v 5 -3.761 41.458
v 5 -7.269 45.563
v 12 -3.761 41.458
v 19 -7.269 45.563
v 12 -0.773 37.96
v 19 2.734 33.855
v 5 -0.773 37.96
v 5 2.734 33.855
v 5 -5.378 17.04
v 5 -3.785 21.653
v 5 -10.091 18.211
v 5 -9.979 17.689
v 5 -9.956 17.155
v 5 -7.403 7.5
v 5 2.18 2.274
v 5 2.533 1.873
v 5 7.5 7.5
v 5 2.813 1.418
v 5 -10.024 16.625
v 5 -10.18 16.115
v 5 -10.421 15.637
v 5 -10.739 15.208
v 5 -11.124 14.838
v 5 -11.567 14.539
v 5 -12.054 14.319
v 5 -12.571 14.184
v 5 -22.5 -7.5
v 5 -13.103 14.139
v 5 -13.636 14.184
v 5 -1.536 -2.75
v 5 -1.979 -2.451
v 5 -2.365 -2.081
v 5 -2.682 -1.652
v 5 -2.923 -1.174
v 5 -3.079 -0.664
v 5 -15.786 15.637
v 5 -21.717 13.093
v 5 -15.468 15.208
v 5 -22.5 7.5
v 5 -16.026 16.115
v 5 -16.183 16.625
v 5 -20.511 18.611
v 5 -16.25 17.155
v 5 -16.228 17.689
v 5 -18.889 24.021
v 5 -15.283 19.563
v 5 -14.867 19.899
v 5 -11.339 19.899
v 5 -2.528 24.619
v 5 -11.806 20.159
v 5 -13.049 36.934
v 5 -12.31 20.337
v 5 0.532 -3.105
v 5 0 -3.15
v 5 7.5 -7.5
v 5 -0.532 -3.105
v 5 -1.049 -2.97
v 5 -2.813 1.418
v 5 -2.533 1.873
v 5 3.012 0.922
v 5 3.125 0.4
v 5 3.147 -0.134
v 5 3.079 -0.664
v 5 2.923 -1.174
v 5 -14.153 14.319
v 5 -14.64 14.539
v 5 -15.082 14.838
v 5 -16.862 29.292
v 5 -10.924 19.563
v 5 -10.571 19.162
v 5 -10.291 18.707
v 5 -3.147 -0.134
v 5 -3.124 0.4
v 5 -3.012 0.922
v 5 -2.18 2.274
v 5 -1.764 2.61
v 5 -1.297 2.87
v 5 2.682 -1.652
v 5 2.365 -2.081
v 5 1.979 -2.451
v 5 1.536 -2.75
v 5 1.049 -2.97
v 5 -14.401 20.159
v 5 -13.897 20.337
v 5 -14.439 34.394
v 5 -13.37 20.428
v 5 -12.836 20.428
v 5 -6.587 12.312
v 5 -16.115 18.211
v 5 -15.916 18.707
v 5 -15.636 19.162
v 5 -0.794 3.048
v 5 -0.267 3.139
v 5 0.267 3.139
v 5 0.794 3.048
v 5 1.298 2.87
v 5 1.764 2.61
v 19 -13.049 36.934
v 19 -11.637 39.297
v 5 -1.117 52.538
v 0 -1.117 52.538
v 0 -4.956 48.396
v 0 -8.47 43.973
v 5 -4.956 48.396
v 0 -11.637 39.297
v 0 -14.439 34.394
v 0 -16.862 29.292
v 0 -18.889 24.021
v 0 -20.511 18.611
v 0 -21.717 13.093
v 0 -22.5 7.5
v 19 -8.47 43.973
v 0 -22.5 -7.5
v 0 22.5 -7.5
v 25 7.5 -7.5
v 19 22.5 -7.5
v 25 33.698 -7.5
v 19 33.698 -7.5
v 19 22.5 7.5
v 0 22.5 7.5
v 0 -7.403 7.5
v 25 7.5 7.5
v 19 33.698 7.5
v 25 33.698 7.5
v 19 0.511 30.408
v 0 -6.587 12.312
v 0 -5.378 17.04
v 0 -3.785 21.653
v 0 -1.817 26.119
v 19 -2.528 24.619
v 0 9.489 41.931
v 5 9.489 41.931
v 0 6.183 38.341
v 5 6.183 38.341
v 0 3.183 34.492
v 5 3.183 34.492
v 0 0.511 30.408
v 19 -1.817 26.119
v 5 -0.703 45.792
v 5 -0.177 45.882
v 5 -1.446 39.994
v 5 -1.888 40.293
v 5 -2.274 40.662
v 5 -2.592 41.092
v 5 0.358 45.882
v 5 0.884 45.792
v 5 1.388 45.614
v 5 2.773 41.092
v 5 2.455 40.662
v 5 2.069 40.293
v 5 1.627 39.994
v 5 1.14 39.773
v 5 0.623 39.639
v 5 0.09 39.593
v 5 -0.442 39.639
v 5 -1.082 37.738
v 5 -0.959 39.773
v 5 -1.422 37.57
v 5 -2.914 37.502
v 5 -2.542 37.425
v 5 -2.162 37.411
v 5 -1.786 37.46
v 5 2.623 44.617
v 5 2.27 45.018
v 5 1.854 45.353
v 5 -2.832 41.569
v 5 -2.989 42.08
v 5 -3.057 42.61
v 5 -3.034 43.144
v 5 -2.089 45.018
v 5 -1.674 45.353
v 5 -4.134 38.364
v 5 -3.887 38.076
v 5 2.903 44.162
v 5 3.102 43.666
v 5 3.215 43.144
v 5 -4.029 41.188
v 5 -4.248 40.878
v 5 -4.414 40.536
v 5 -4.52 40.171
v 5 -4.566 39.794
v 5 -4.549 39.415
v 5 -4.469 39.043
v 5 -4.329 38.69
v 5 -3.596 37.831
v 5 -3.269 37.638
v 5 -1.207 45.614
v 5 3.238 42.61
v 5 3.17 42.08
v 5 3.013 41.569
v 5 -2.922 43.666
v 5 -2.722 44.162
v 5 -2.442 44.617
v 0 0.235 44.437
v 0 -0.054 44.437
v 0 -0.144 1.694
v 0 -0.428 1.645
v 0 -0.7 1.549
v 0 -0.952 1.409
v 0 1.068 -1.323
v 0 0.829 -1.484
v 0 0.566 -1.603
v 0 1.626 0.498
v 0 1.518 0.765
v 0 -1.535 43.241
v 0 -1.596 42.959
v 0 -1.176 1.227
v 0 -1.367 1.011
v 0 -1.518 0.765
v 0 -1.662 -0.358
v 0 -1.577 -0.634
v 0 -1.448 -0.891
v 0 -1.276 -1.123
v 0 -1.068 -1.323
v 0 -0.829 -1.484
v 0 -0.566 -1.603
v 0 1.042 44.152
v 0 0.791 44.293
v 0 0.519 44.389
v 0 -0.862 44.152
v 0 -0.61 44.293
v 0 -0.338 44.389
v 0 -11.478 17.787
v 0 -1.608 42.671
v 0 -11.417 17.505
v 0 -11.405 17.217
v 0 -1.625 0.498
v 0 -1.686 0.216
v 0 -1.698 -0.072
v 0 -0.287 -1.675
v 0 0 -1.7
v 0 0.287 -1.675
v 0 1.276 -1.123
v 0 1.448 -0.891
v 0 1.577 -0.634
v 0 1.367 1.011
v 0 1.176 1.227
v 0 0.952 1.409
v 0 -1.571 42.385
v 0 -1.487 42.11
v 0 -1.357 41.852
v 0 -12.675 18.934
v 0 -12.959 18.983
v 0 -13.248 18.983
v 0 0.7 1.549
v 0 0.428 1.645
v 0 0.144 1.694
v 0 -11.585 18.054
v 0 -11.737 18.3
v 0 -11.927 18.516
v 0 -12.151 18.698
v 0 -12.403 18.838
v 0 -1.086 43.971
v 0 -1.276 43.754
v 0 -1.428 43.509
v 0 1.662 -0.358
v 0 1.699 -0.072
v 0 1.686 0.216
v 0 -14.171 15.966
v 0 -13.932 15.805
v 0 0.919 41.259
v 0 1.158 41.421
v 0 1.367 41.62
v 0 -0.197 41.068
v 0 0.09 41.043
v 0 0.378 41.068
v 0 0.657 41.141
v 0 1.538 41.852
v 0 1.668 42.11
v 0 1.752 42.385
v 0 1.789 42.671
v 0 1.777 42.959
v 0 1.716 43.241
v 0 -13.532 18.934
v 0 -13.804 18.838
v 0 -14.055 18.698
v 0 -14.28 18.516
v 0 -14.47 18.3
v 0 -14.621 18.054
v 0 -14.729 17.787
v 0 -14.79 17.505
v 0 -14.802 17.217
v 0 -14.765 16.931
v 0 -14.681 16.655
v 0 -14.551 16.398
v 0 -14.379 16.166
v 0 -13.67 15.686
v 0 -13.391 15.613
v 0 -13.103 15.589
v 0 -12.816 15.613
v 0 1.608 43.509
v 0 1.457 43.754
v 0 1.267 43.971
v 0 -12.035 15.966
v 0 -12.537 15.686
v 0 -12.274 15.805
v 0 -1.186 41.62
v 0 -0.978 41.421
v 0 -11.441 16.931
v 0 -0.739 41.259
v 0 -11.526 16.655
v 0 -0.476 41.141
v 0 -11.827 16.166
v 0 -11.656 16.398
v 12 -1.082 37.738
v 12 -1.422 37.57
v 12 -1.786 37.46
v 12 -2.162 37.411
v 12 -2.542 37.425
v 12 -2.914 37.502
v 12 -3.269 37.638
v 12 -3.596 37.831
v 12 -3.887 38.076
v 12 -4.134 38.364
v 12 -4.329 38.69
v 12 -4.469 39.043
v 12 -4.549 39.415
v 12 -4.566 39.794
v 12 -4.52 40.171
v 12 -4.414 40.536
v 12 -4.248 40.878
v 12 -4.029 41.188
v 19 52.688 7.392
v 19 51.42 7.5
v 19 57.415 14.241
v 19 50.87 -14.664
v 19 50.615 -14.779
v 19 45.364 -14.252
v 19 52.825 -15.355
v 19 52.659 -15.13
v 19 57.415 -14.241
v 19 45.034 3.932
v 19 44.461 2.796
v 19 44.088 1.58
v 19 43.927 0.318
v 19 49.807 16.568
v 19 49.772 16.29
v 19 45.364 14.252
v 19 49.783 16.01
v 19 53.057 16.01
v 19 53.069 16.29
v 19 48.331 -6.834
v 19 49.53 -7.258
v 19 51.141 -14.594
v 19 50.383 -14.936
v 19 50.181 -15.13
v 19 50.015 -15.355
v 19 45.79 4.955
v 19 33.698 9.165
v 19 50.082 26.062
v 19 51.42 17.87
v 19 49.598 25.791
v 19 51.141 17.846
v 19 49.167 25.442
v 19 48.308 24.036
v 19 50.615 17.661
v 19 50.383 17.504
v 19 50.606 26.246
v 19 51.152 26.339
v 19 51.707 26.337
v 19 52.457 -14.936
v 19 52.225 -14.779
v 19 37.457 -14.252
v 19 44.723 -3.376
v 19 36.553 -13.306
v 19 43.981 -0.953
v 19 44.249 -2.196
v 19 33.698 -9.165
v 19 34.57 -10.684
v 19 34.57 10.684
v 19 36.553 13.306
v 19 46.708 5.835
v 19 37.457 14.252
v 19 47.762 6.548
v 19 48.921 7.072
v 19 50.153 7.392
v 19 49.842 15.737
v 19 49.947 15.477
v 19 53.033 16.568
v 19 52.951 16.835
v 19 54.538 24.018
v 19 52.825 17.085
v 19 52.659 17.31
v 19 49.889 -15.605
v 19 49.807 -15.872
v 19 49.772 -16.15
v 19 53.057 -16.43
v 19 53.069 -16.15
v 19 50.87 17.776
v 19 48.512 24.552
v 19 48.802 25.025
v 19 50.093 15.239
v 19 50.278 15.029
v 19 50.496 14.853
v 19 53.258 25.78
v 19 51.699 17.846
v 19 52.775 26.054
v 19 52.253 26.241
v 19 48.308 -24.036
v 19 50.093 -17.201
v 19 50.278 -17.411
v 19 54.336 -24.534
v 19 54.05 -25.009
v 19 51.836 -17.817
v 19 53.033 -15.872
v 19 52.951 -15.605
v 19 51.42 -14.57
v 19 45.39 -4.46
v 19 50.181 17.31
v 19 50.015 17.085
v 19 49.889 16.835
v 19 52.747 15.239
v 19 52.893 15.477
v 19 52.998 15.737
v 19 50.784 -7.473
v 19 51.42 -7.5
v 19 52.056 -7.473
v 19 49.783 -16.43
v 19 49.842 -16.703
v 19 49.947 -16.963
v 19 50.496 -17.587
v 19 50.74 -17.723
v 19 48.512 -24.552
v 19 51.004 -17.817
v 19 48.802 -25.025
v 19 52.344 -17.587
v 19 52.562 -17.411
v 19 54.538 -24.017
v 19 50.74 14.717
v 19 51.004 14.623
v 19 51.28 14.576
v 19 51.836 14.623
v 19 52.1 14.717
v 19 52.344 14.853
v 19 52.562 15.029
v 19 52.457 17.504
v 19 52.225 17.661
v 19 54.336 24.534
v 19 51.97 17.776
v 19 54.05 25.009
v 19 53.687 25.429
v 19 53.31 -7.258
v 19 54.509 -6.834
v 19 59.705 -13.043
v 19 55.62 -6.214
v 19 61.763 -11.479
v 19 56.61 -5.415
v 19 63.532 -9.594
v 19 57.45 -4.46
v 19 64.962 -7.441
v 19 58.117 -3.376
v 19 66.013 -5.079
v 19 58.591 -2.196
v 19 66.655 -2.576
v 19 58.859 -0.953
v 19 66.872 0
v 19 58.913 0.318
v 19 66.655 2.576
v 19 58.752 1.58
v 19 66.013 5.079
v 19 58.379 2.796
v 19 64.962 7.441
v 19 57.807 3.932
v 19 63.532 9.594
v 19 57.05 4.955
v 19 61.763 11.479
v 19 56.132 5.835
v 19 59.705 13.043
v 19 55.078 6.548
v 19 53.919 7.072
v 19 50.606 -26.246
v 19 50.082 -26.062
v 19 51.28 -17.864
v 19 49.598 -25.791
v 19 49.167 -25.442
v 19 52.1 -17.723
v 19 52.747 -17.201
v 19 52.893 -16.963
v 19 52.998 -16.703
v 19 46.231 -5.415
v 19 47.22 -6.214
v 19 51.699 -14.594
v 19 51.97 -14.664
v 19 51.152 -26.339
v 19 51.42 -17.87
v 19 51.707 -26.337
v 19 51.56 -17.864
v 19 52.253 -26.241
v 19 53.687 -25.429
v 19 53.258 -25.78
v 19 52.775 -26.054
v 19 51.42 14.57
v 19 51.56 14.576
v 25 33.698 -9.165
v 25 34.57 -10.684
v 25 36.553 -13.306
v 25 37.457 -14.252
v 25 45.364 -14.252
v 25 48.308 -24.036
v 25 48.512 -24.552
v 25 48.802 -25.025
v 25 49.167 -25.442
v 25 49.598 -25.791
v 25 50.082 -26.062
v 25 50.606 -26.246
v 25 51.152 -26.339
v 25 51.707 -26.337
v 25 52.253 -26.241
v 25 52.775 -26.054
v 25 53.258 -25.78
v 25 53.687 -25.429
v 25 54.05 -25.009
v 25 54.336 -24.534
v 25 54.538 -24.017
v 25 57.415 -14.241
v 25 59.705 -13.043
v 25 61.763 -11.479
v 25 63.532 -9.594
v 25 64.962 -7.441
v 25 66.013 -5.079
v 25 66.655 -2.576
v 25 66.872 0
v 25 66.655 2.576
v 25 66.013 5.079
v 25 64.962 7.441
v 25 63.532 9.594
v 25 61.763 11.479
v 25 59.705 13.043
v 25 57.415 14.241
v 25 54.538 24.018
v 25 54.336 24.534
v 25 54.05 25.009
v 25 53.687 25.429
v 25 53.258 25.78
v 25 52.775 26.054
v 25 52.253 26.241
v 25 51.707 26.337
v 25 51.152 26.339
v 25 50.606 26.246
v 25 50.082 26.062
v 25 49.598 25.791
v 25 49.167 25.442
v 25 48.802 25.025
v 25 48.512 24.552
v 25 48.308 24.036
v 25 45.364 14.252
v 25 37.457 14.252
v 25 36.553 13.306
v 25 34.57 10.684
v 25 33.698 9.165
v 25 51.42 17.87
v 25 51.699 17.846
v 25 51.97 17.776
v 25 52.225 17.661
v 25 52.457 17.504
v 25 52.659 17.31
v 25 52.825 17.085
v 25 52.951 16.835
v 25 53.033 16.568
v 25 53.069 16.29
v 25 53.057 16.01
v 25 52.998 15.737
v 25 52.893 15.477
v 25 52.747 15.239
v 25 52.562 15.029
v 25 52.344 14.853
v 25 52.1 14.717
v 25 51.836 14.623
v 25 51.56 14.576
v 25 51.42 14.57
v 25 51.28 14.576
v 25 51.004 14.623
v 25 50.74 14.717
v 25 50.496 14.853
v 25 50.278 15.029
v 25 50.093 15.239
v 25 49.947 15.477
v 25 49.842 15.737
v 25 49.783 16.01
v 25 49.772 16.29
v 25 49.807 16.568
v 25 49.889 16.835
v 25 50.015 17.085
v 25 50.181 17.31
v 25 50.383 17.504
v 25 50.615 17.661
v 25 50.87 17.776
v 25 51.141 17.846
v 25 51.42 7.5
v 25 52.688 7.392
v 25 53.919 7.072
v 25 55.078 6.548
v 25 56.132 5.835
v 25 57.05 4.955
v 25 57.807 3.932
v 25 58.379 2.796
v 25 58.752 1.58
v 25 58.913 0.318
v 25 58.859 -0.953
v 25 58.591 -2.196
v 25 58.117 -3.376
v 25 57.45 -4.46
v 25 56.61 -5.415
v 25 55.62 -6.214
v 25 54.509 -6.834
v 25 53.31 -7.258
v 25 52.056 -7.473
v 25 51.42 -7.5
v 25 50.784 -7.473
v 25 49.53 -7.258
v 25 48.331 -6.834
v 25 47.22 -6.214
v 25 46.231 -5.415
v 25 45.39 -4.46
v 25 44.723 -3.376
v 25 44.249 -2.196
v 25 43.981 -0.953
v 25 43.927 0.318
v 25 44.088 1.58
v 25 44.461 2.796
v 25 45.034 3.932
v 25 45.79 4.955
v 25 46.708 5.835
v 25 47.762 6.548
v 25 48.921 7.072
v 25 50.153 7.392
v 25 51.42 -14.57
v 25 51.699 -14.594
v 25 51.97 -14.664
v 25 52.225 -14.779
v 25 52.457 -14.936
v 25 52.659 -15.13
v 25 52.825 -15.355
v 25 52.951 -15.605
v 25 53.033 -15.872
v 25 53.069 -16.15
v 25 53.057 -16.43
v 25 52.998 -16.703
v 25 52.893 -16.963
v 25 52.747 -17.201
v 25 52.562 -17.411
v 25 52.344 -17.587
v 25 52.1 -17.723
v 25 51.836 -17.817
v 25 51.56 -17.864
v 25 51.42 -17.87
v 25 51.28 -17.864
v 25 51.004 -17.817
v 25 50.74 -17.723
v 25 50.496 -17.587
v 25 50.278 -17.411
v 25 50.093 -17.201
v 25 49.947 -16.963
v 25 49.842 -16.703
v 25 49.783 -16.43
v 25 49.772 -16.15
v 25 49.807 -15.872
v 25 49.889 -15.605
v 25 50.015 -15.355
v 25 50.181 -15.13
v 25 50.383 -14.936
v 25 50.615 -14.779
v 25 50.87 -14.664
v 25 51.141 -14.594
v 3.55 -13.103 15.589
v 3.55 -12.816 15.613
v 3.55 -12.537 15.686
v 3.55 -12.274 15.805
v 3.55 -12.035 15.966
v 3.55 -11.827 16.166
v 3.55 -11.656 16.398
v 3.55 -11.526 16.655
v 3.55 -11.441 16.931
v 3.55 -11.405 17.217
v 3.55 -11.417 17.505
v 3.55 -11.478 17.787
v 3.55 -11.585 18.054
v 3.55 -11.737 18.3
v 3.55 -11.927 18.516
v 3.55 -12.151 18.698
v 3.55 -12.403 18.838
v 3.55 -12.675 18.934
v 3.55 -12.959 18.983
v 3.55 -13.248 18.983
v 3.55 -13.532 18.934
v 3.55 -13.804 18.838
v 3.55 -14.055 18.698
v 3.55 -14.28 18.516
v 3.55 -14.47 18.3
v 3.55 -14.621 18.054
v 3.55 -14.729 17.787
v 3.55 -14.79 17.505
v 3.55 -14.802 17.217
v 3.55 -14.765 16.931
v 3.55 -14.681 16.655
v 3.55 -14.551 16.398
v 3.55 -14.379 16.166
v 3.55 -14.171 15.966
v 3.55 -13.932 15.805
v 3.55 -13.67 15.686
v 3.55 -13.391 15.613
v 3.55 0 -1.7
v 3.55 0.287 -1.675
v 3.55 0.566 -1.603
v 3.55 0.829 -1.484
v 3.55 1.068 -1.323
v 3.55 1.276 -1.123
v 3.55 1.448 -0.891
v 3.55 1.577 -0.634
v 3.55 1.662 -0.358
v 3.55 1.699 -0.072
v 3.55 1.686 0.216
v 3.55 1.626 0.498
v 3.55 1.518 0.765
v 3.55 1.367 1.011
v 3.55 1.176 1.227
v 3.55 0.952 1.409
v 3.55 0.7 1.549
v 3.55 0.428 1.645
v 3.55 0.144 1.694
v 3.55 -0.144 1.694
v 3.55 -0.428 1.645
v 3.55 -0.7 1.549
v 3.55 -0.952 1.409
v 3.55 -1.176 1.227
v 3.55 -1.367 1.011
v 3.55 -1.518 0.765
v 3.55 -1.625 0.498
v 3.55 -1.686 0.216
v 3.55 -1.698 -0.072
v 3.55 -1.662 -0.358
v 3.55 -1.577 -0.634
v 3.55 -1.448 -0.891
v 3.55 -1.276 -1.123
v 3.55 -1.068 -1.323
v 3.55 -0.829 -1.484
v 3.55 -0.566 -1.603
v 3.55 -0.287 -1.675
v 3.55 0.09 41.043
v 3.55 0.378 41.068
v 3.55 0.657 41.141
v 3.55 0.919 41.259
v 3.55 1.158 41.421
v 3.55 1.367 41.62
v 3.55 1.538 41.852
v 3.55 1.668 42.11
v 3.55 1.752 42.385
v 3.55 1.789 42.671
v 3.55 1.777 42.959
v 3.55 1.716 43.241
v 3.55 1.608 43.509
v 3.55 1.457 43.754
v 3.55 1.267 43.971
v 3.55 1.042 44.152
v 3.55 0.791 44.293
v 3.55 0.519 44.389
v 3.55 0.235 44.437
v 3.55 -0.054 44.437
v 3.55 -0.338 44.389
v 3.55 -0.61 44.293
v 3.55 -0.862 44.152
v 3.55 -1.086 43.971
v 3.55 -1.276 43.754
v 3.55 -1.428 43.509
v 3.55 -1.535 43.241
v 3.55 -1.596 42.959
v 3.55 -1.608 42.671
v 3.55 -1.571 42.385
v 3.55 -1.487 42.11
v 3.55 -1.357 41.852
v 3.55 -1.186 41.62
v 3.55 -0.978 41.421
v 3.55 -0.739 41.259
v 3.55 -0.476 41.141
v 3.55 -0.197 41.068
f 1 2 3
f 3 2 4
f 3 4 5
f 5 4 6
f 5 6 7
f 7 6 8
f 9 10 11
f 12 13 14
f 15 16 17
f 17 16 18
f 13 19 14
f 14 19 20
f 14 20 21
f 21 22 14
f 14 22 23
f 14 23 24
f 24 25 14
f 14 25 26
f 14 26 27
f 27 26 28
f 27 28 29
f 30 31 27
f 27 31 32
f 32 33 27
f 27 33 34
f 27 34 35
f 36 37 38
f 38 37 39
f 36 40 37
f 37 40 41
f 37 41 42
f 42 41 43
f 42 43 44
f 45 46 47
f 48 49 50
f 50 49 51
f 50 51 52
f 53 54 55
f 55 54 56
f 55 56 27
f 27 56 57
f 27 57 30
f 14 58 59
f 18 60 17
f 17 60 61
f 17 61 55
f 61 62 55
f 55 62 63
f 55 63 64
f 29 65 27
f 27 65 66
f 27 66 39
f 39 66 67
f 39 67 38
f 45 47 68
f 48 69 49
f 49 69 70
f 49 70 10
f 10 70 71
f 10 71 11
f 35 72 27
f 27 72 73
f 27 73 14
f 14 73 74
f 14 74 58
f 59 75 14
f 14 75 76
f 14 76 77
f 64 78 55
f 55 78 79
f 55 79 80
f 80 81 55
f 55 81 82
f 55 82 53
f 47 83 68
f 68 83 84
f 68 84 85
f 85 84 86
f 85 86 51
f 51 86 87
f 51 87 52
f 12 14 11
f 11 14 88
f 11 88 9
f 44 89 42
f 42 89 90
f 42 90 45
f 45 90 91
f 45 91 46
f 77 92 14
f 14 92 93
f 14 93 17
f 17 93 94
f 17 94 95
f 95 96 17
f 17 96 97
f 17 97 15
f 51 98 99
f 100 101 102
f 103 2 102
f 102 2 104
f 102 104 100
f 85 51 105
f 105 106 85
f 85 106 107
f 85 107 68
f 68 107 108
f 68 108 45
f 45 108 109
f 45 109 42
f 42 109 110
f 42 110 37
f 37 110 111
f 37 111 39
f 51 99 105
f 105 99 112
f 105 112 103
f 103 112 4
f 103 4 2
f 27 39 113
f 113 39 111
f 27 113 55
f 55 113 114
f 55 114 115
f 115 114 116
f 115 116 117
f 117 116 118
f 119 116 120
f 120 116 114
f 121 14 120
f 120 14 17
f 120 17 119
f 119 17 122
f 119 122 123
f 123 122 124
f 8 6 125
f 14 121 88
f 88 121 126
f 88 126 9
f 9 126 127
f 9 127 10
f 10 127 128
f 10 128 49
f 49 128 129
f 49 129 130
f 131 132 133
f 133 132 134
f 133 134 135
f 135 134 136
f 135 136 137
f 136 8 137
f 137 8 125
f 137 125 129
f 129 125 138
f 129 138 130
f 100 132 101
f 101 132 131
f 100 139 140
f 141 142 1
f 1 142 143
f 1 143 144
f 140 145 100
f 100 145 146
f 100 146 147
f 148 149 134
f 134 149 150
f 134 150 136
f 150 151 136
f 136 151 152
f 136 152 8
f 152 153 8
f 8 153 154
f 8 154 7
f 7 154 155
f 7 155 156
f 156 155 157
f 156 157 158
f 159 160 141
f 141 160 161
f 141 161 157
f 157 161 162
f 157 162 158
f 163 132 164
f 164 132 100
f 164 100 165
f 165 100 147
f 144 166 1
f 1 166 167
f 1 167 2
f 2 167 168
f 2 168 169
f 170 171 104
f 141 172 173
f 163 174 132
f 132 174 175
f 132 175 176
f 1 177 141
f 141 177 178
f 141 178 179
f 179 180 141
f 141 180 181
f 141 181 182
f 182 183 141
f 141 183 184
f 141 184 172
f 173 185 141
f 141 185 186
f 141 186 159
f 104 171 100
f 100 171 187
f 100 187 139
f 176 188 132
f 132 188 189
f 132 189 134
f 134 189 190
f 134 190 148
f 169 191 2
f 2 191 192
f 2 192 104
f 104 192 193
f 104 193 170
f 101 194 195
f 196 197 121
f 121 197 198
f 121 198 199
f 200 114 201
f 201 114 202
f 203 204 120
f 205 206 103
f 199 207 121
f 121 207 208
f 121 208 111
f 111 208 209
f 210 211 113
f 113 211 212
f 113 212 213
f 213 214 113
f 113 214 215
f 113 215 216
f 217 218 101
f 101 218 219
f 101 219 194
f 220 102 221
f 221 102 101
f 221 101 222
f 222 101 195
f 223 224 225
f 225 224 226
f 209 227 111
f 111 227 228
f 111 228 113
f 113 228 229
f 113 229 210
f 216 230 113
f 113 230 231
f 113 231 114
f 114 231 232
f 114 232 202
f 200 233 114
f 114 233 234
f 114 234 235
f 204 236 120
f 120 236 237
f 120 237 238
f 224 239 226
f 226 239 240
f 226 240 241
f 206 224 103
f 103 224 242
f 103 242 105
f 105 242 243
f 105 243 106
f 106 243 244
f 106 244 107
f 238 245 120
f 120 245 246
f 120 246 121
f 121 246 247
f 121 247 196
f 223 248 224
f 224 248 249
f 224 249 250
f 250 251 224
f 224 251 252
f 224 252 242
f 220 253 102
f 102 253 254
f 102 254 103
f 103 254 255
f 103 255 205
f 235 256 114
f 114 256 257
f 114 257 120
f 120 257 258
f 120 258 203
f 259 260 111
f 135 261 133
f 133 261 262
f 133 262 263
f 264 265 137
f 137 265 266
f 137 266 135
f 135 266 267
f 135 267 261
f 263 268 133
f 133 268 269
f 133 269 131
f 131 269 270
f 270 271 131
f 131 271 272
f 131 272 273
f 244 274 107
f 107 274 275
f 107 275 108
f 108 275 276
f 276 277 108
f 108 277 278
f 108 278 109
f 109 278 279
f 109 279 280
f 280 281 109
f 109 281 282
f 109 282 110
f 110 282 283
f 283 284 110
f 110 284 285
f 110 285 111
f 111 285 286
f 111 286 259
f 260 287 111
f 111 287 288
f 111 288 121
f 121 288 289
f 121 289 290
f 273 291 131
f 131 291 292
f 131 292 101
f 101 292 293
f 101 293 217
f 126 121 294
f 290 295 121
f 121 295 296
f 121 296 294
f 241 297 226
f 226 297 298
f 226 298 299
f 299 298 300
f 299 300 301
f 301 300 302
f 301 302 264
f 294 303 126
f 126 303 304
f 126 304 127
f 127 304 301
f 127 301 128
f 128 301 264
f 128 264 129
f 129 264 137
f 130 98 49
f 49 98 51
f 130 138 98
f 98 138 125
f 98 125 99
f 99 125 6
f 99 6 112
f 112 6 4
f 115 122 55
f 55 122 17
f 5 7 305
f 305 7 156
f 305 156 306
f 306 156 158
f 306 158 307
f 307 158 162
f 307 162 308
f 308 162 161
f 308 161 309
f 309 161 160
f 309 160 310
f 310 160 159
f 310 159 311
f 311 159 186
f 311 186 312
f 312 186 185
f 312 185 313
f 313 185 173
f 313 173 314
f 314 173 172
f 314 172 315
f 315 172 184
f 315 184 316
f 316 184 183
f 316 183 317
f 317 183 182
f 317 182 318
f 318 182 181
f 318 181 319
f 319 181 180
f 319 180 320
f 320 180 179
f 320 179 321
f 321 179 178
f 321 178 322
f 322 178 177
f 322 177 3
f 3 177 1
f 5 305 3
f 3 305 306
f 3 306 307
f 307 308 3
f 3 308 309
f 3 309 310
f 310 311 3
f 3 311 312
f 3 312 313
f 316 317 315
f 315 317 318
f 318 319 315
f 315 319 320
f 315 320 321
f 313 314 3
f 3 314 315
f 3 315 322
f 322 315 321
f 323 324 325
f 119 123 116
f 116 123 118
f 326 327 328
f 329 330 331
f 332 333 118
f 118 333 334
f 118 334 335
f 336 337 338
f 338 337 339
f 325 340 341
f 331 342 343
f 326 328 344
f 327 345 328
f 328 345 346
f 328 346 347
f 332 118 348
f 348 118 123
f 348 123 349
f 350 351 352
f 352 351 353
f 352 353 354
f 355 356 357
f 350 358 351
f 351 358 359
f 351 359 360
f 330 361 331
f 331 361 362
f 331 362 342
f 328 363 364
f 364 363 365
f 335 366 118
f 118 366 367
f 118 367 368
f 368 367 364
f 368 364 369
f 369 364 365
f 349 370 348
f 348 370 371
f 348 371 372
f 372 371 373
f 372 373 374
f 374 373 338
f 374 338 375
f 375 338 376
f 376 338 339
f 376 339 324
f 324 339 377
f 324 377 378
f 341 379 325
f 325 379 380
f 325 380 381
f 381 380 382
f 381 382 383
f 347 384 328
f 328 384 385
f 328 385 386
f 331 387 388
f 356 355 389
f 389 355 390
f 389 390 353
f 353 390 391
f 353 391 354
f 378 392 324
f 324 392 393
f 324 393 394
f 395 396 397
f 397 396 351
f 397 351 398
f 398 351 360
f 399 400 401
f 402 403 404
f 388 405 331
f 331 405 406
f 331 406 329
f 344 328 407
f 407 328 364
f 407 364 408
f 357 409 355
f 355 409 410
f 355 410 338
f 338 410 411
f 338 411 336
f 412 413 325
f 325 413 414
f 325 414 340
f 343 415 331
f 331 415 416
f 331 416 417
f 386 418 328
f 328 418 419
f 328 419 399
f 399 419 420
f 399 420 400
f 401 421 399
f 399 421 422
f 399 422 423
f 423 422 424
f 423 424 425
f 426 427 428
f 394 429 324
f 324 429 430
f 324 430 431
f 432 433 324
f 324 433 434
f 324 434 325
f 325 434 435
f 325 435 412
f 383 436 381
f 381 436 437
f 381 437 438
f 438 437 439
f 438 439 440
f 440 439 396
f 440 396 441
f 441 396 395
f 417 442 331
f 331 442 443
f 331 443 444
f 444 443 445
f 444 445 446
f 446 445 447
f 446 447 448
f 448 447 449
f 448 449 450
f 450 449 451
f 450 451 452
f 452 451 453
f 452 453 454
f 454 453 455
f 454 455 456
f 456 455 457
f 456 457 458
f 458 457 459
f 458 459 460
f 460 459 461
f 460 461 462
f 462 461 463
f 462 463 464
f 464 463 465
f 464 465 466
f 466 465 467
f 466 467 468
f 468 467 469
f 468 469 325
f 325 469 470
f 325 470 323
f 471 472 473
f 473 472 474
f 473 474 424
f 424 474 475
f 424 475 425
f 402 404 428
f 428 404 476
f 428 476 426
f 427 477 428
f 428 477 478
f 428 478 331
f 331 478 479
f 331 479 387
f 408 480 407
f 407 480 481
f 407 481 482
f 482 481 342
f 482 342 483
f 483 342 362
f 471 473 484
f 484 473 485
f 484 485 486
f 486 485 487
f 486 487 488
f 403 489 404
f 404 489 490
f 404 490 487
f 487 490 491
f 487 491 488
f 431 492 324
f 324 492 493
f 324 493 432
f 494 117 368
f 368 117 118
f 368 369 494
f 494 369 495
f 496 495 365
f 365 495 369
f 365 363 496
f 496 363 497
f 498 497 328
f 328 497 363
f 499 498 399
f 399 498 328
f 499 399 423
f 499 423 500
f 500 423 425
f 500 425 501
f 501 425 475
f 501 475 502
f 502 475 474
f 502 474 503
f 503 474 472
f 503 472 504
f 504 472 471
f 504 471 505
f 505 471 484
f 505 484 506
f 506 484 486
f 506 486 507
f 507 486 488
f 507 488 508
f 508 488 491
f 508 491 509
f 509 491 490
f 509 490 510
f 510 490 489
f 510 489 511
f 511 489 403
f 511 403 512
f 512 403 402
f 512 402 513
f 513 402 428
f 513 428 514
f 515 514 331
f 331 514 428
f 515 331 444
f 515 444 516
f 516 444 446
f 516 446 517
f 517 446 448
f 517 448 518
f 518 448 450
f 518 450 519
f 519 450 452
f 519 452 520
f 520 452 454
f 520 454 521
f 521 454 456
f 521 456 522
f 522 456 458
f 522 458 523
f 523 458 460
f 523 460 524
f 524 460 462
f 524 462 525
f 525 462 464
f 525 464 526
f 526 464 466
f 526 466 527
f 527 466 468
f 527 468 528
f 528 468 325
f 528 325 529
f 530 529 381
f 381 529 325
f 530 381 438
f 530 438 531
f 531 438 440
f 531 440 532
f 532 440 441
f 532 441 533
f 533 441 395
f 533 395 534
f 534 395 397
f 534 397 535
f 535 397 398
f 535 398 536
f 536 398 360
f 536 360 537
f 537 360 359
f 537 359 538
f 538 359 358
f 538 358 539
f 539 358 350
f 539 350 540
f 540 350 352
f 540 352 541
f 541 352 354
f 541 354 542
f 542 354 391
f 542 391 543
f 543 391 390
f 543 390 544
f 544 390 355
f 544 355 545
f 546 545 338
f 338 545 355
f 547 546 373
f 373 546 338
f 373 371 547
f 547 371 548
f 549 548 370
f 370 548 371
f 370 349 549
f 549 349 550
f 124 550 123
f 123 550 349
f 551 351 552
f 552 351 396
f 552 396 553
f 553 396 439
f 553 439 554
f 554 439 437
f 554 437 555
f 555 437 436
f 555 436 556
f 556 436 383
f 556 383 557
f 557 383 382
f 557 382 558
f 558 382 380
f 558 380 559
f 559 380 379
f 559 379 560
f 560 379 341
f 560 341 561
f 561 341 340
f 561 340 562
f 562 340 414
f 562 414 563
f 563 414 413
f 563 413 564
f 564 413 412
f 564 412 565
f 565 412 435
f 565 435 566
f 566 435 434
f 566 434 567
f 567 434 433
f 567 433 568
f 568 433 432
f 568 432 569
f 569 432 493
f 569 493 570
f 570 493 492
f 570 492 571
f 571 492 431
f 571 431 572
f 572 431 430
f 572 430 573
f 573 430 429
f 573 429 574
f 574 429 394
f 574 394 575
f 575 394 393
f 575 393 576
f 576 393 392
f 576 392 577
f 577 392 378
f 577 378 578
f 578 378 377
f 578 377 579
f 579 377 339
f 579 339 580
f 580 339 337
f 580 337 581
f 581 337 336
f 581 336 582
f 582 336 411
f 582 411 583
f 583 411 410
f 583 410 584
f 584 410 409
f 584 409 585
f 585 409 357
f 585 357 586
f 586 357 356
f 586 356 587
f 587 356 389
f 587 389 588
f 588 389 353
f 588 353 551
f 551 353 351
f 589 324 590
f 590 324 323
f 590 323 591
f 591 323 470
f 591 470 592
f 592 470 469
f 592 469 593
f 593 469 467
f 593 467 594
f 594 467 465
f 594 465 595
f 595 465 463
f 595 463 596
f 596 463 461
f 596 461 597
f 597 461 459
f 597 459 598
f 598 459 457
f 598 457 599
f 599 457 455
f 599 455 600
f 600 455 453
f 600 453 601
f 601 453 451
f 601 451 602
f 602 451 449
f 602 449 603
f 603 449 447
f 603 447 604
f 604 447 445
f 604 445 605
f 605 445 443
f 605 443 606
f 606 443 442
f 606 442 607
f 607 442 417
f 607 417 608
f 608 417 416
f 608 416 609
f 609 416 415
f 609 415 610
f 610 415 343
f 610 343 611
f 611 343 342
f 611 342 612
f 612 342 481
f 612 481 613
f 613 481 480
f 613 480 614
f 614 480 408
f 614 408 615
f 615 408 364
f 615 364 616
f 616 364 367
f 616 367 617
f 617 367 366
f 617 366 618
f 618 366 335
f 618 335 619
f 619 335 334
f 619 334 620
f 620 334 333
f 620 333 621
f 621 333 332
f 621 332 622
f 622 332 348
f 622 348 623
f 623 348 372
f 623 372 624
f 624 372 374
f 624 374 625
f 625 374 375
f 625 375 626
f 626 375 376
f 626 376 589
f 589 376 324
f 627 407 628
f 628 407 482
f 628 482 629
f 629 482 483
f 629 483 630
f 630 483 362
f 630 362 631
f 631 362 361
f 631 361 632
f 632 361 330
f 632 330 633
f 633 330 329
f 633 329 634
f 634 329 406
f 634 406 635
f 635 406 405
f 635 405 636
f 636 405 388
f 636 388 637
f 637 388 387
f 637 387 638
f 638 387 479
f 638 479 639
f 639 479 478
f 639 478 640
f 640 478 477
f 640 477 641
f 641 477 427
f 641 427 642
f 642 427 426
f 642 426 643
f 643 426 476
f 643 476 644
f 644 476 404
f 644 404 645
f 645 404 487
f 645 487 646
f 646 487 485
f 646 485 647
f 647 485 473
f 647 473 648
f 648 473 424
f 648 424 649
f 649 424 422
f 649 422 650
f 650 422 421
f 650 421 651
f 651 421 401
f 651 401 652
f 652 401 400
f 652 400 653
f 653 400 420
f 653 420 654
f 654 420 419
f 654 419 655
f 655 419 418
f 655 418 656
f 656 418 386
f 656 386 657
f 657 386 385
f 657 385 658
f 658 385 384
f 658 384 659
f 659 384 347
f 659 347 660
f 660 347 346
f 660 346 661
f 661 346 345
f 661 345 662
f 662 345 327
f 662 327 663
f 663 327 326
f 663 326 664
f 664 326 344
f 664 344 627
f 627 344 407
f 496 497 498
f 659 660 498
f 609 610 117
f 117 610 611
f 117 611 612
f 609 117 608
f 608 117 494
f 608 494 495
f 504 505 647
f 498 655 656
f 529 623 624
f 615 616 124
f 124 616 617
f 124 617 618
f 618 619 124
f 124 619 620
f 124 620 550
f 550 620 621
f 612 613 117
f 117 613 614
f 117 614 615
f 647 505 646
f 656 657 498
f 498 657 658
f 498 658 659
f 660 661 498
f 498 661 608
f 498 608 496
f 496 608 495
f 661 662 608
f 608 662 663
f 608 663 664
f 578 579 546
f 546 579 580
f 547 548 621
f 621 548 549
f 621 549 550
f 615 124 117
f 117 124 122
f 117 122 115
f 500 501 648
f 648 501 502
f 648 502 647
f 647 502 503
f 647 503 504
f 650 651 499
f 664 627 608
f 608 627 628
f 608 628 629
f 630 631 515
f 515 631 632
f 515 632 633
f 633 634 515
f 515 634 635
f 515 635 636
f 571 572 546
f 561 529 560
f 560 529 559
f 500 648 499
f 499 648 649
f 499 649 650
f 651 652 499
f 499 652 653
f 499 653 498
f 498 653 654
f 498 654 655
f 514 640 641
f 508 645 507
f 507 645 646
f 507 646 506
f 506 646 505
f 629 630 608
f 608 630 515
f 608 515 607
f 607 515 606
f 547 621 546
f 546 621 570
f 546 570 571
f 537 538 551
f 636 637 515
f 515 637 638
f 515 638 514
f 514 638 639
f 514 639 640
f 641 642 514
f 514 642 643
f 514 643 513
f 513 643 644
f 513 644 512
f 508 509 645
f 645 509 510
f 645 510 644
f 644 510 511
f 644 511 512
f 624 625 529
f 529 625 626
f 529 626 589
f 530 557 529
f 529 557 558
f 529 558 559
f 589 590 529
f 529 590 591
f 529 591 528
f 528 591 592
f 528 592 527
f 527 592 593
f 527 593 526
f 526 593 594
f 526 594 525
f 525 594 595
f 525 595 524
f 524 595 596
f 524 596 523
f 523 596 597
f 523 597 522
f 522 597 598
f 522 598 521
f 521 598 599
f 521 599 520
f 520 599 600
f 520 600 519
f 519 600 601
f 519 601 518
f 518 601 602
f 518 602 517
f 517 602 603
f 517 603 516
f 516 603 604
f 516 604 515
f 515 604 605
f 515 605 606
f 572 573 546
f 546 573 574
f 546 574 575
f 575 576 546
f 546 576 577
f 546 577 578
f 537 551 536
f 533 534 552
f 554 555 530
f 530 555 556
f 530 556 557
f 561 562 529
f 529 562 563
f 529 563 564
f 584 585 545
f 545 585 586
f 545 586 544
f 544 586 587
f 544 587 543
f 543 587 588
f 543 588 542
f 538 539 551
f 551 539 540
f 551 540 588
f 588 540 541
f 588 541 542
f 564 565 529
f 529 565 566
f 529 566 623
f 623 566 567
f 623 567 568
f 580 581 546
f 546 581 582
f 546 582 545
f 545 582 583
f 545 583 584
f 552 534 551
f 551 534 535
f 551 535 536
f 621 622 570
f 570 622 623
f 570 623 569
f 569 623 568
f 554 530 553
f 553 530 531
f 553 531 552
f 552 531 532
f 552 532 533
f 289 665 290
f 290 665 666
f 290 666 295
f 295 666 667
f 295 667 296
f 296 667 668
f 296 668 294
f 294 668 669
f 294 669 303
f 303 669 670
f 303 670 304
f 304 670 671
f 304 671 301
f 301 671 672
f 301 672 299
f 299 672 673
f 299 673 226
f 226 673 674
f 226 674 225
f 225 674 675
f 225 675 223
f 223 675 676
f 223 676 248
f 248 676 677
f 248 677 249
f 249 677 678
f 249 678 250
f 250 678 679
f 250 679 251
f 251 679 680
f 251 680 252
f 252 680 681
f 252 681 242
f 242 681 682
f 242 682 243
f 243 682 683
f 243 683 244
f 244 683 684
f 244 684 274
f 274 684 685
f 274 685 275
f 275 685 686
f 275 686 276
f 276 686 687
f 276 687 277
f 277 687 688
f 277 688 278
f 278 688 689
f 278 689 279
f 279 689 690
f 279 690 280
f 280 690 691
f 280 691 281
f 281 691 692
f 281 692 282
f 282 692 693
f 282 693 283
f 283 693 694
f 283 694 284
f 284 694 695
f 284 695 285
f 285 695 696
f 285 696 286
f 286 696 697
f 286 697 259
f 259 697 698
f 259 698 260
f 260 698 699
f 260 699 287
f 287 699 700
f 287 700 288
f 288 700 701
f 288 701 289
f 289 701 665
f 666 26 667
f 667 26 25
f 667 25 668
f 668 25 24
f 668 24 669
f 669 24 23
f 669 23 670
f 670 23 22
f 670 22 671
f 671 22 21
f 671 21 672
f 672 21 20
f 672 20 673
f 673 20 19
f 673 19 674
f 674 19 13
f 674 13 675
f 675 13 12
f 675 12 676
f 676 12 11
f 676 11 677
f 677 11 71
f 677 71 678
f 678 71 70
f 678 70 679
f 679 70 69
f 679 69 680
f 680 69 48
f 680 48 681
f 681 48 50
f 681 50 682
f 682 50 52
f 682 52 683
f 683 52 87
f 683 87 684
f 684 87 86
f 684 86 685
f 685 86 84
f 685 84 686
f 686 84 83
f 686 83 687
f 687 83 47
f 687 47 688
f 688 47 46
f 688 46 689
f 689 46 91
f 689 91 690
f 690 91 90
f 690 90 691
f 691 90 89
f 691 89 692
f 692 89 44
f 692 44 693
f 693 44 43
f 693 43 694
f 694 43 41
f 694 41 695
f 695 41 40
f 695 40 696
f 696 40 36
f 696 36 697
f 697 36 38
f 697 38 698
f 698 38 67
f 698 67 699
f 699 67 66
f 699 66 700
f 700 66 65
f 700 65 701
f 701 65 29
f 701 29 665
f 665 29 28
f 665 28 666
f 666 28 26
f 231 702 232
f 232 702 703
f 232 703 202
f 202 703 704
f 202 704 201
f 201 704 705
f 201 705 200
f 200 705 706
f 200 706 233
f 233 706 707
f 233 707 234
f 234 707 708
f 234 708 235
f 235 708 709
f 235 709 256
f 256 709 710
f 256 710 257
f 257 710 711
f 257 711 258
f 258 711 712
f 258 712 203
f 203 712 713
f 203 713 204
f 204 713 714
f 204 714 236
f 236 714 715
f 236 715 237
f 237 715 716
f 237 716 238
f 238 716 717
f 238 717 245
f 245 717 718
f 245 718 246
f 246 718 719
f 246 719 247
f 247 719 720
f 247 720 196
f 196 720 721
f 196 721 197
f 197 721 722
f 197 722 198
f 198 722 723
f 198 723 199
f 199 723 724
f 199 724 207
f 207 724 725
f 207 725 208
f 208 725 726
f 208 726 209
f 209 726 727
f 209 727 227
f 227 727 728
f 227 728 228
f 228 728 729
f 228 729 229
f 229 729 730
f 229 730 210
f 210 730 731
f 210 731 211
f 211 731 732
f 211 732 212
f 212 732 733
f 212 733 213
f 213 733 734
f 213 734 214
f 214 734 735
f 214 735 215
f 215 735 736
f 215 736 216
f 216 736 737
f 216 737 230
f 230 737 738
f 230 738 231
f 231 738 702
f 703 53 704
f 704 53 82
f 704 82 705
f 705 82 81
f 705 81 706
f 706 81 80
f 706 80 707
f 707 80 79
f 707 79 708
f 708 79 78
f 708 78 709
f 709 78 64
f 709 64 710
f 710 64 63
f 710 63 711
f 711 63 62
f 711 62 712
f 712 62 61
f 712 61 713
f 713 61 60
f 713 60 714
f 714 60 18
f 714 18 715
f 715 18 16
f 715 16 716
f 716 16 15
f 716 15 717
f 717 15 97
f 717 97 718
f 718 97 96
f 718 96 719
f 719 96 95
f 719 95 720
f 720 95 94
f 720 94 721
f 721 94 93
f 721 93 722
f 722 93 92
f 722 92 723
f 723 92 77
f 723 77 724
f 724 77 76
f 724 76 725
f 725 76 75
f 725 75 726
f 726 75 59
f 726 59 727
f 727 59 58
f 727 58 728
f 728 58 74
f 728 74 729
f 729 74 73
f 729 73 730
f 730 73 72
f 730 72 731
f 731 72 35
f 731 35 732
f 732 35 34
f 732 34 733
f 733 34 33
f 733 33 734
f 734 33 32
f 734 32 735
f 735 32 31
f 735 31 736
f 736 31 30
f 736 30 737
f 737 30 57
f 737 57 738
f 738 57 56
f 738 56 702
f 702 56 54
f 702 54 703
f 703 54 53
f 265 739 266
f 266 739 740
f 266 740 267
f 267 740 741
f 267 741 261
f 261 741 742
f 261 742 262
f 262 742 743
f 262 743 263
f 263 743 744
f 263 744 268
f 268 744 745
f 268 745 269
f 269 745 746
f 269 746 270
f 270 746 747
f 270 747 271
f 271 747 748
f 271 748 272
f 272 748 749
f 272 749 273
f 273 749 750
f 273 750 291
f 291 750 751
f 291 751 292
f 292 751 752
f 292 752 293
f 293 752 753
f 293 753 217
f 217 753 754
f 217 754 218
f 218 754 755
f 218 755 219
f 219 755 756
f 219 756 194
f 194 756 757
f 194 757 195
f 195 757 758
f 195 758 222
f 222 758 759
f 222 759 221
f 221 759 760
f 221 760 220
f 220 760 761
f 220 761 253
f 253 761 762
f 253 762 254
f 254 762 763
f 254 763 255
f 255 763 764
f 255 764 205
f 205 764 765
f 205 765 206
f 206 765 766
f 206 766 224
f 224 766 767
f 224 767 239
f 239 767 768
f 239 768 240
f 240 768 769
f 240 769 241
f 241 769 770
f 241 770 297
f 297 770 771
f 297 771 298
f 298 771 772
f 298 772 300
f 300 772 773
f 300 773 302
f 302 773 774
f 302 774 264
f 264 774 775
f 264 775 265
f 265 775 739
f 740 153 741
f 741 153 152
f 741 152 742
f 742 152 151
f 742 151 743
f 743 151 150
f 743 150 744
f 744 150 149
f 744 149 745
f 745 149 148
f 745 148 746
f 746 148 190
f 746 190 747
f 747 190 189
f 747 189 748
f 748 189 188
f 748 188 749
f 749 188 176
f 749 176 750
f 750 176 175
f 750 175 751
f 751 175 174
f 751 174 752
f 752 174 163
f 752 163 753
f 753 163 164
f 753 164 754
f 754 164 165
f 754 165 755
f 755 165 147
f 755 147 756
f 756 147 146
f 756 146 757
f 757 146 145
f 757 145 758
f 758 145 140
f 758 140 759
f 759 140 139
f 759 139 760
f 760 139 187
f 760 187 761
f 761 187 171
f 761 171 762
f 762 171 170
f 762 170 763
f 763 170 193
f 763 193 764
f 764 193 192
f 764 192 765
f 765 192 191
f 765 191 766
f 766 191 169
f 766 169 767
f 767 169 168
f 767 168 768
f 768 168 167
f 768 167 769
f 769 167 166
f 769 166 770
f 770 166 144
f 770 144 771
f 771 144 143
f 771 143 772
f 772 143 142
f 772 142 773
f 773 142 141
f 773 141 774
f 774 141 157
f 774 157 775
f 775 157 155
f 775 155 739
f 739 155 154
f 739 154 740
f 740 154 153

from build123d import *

# Parameters (mm, degrees)
SKETCH1_W                                       = 15
SKETCH1_H                                       = 45
BOSS_EXTRUDE1_DEPTH                             = 5
SKETCH2_W                                       = 15
SKETCH2_H                                       = 15
BOSS_EXTRUDE2_DEPTH                             = 14
SKETCH3_R                                       = 2.3
CUT_EXTRUDE1_DEPTH                              = 7
SKETCH4_R                                       = 7.5
SKETCH4_R_2                                     = 1.65
BOSS_EXTRUDE3_DEPTH                             = 6
CSK_FOR_M3_FLAT_HEAD_MACHINE_SCREW1_D           = 3.4
CSK_FOR_M3_FLAT_HEAD_MACHINE_SCREW1_DEPTH       = 6.35
CSK_FOR_M3_FLAT_HEAD_MACHINE_SCREW1_CSINK_D     = 6.3
CSK_FOR_M3_FLAT_HEAD_MACHINE_SCREW1_CSINK_ANGLE = 90
CSK_FOR_M3_FLAT_HEAD_MACHINE_SCREW1_TIP         = 1.021463052


with BuildPart() as part:
    # Sketch1 → Boss-Extrude1 (new body)
    with BuildSketch(Plane(origin=(0, 0, 0), x_dir=(0, 0, -1), z_dir=(1, 0, 0))):
        with BuildLine():
            Line((-33.857008974, 2.735870452), (-45.565370995, -7.267550065))
            ThreePointArc((-45.565370995, -7.267550065), (-27.604171468, -17.561381798), (-7.5, -22.5))
            Line((-7.5, -22.5), (-7.5, -7.403306871))
            ThreePointArc((-7.5, -7.403306871), (-21.290873092, -3.925583536), (-33.857008974, 2.735870452))
        make_face()
        Rectangle(SKETCH1_W, SKETCH1_H)
        with BuildLine():
            Line((-41.931432124, 9.489065709), (-52.538033842, -1.117536008))
            ThreePointArc((-52.538033842, -1.117536008), (-49.147992618, -4.301713372), (-45.565370995, -7.267550065))
            Line((-45.565370995, -7.267550065), (-33.857008974, 2.735870452))
            ThreePointArc((-33.857008974, 2.735870452), (-38.044360457, 5.932954073), (-41.931432124, 9.489065709))
        make_face()
    extrude(amount=BOSS_EXTRUDE1_DEPTH)

    # Sketch2 → Boss-Extrude2 (add)
    with BuildSketch(Plane(origin=(5, 0, 0), x_dir=(0, 0, -1), z_dir=(1, 0, 0))):
        with BuildLine():
            Line((-45.563203072, -7.269233174), (-33.854727787, 2.734284113))
            ThreePointArc((-33.854727787, 2.734284113), (-29.354954434, -0.104026911), (-24.61890521, -2.52762082))
            Line((-24.61890521, -2.52762082), (-36.933994133, -13.049418231))
            ThreePointArc((-36.933994133, -13.049418231), (-41.349722145, -10.310292527), (-45.563203072, -7.269233174))
        make_face()
        with Locations((0, 15)):
            Rectangle(SKETCH2_W, SKETCH2_H)
    extrude(amount=BOSS_EXTRUDE2_DEPTH)

    # Sketch3 → Cut-Extrude1 (cut)
    with BuildSketch(Plane(origin=(5, 0, 0), x_dir=(0, 0, -1), z_dir=(1, 0, 0))):
        with Locations((-39.70896543, -2.267474531)):
            Circle(SKETCH3_R)
    extrude(amount=CUT_EXTRUDE1_DEPTH, mode=Mode.SUBTRACT)

    # Sketch4 → Boss-Extrude3 (add)
    with BuildSketch(Plane(origin=(19, 0, 0), x_dir=(0, 0, -1), z_dir=(1, 0, 0))):
        with BuildLine():
            Line((-7.5, 33.697965455), (-7.5, 7.5))
            Line((-7.5, 7.5), (7.5, 7.5))
            Line((7.5, 7.5), (7.5, 33.697965455))
            Line((7.5, 33.697965455), (9.165031814, 33.697965455))
            ThreePointArc((9.165031814, 33.697965455), (9.933965272, 34.117264651), (10.683756157, 34.569905907))
            Line((10.683756157, 34.569905907), (13.30556247, 36.552911383))
            ThreePointArc((13.30556247, 36.552911383), (13.786023096, 36.997313573), (14.25164947, 37.457235089))
            Line((14.25164947, 37.457235089), (14.25164947, 45.3641606))
            Line((14.25164947, 45.3641606), (24.03628358, 48.30778647))
            ThreePointArc((24.03628358, 48.30778647), (26.349985315, 51.429769983), (24.017555191, 54.53778647))
            Line((24.017555191, 54.53778647), (14.241296463, 57.414910041))
            ThreePointArc((14.241296463, 57.414910041), (0, 66.87164947), (-14.241296463, 57.414910041))
            Line((-14.241296463, 57.414910041), (-24.017555191, 54.53778647))
            ThreePointArc((-24.017555191, 54.53778647), (-26.349985315, 51.429769983), (-24.03628358, 48.30778647))
            Line((-24.03628358, 48.30778647), (-14.25164947, 45.3641606))
            Line((-14.25164947, 45.3641606), (-14.25164947, 37.457235089))
            ThreePointArc((-14.25164947, 37.457235089), (-13.786023096, 36.997313573), (-13.30556247, 36.552911383))
            Line((-13.30556247, 36.552911383), (-10.683756157, 34.569905907))
            ThreePointArc((-10.683756157, 34.569905907), (-9.933965272, 34.117264651), (-9.165031814, 33.697965455))
            Line((-9.165031814, 33.697965455), (-7.5, 33.697965455))
        make_face()
        with Locations((0, 51.42)):
            Circle(SKETCH4_R, mode=Mode.SUBTRACT)
        with Locations((16.22, 51.42)):
            Circle(SKETCH4_R_2, mode=Mode.SUBTRACT)
        with Locations((-16.22, 51.42)):
            Circle(SKETCH4_R_2, mode=Mode.SUBTRACT)
    extrude(amount=BOSS_EXTRUDE3_DEPTH)

    # CSK for M3 Flat Head Machine Screw1
    with Locations(Plane(origin=(5, 0, 0), x_dir=(0, 0, -1), z_dir=(1, 0, 0))):
        with Locations((-42.74343682, 0.09035829), (-17.288987754, -13.103380711), (0, 0), (0, 51.42)):
            CounterSinkHole(CSK_FOR_M3_FLAT_HEAD_MACHINE_SCREW1_D / 2, CSK_FOR_M3_FLAT_HEAD_MACHINE_SCREW1_CSINK_D / 2, depth=CSK_FOR_M3_FLAT_HEAD_MACHINE_SCREW1_DEPTH, counter_sink_angle=CSK_FOR_M3_FLAT_HEAD_MACHINE_SCREW1_CSINK_ANGLE)
            with Locations((0, 0, -(CSK_FOR_M3_FLAT_HEAD_MACHINE_SCREW1_DEPTH + CSK_FOR_M3_FLAT_HEAD_MACHINE_SCREW1_TIP / 2))):  # 118° drill point
                Cone(0, CSK_FOR_M3_FLAT_HEAD_MACHINE_SCREW1_D / 2, CSK_FOR_M3_FLAT_HEAD_MACHINE_SCREW1_TIP, mode=Mode.SUBTRACT)


solid = part.part
